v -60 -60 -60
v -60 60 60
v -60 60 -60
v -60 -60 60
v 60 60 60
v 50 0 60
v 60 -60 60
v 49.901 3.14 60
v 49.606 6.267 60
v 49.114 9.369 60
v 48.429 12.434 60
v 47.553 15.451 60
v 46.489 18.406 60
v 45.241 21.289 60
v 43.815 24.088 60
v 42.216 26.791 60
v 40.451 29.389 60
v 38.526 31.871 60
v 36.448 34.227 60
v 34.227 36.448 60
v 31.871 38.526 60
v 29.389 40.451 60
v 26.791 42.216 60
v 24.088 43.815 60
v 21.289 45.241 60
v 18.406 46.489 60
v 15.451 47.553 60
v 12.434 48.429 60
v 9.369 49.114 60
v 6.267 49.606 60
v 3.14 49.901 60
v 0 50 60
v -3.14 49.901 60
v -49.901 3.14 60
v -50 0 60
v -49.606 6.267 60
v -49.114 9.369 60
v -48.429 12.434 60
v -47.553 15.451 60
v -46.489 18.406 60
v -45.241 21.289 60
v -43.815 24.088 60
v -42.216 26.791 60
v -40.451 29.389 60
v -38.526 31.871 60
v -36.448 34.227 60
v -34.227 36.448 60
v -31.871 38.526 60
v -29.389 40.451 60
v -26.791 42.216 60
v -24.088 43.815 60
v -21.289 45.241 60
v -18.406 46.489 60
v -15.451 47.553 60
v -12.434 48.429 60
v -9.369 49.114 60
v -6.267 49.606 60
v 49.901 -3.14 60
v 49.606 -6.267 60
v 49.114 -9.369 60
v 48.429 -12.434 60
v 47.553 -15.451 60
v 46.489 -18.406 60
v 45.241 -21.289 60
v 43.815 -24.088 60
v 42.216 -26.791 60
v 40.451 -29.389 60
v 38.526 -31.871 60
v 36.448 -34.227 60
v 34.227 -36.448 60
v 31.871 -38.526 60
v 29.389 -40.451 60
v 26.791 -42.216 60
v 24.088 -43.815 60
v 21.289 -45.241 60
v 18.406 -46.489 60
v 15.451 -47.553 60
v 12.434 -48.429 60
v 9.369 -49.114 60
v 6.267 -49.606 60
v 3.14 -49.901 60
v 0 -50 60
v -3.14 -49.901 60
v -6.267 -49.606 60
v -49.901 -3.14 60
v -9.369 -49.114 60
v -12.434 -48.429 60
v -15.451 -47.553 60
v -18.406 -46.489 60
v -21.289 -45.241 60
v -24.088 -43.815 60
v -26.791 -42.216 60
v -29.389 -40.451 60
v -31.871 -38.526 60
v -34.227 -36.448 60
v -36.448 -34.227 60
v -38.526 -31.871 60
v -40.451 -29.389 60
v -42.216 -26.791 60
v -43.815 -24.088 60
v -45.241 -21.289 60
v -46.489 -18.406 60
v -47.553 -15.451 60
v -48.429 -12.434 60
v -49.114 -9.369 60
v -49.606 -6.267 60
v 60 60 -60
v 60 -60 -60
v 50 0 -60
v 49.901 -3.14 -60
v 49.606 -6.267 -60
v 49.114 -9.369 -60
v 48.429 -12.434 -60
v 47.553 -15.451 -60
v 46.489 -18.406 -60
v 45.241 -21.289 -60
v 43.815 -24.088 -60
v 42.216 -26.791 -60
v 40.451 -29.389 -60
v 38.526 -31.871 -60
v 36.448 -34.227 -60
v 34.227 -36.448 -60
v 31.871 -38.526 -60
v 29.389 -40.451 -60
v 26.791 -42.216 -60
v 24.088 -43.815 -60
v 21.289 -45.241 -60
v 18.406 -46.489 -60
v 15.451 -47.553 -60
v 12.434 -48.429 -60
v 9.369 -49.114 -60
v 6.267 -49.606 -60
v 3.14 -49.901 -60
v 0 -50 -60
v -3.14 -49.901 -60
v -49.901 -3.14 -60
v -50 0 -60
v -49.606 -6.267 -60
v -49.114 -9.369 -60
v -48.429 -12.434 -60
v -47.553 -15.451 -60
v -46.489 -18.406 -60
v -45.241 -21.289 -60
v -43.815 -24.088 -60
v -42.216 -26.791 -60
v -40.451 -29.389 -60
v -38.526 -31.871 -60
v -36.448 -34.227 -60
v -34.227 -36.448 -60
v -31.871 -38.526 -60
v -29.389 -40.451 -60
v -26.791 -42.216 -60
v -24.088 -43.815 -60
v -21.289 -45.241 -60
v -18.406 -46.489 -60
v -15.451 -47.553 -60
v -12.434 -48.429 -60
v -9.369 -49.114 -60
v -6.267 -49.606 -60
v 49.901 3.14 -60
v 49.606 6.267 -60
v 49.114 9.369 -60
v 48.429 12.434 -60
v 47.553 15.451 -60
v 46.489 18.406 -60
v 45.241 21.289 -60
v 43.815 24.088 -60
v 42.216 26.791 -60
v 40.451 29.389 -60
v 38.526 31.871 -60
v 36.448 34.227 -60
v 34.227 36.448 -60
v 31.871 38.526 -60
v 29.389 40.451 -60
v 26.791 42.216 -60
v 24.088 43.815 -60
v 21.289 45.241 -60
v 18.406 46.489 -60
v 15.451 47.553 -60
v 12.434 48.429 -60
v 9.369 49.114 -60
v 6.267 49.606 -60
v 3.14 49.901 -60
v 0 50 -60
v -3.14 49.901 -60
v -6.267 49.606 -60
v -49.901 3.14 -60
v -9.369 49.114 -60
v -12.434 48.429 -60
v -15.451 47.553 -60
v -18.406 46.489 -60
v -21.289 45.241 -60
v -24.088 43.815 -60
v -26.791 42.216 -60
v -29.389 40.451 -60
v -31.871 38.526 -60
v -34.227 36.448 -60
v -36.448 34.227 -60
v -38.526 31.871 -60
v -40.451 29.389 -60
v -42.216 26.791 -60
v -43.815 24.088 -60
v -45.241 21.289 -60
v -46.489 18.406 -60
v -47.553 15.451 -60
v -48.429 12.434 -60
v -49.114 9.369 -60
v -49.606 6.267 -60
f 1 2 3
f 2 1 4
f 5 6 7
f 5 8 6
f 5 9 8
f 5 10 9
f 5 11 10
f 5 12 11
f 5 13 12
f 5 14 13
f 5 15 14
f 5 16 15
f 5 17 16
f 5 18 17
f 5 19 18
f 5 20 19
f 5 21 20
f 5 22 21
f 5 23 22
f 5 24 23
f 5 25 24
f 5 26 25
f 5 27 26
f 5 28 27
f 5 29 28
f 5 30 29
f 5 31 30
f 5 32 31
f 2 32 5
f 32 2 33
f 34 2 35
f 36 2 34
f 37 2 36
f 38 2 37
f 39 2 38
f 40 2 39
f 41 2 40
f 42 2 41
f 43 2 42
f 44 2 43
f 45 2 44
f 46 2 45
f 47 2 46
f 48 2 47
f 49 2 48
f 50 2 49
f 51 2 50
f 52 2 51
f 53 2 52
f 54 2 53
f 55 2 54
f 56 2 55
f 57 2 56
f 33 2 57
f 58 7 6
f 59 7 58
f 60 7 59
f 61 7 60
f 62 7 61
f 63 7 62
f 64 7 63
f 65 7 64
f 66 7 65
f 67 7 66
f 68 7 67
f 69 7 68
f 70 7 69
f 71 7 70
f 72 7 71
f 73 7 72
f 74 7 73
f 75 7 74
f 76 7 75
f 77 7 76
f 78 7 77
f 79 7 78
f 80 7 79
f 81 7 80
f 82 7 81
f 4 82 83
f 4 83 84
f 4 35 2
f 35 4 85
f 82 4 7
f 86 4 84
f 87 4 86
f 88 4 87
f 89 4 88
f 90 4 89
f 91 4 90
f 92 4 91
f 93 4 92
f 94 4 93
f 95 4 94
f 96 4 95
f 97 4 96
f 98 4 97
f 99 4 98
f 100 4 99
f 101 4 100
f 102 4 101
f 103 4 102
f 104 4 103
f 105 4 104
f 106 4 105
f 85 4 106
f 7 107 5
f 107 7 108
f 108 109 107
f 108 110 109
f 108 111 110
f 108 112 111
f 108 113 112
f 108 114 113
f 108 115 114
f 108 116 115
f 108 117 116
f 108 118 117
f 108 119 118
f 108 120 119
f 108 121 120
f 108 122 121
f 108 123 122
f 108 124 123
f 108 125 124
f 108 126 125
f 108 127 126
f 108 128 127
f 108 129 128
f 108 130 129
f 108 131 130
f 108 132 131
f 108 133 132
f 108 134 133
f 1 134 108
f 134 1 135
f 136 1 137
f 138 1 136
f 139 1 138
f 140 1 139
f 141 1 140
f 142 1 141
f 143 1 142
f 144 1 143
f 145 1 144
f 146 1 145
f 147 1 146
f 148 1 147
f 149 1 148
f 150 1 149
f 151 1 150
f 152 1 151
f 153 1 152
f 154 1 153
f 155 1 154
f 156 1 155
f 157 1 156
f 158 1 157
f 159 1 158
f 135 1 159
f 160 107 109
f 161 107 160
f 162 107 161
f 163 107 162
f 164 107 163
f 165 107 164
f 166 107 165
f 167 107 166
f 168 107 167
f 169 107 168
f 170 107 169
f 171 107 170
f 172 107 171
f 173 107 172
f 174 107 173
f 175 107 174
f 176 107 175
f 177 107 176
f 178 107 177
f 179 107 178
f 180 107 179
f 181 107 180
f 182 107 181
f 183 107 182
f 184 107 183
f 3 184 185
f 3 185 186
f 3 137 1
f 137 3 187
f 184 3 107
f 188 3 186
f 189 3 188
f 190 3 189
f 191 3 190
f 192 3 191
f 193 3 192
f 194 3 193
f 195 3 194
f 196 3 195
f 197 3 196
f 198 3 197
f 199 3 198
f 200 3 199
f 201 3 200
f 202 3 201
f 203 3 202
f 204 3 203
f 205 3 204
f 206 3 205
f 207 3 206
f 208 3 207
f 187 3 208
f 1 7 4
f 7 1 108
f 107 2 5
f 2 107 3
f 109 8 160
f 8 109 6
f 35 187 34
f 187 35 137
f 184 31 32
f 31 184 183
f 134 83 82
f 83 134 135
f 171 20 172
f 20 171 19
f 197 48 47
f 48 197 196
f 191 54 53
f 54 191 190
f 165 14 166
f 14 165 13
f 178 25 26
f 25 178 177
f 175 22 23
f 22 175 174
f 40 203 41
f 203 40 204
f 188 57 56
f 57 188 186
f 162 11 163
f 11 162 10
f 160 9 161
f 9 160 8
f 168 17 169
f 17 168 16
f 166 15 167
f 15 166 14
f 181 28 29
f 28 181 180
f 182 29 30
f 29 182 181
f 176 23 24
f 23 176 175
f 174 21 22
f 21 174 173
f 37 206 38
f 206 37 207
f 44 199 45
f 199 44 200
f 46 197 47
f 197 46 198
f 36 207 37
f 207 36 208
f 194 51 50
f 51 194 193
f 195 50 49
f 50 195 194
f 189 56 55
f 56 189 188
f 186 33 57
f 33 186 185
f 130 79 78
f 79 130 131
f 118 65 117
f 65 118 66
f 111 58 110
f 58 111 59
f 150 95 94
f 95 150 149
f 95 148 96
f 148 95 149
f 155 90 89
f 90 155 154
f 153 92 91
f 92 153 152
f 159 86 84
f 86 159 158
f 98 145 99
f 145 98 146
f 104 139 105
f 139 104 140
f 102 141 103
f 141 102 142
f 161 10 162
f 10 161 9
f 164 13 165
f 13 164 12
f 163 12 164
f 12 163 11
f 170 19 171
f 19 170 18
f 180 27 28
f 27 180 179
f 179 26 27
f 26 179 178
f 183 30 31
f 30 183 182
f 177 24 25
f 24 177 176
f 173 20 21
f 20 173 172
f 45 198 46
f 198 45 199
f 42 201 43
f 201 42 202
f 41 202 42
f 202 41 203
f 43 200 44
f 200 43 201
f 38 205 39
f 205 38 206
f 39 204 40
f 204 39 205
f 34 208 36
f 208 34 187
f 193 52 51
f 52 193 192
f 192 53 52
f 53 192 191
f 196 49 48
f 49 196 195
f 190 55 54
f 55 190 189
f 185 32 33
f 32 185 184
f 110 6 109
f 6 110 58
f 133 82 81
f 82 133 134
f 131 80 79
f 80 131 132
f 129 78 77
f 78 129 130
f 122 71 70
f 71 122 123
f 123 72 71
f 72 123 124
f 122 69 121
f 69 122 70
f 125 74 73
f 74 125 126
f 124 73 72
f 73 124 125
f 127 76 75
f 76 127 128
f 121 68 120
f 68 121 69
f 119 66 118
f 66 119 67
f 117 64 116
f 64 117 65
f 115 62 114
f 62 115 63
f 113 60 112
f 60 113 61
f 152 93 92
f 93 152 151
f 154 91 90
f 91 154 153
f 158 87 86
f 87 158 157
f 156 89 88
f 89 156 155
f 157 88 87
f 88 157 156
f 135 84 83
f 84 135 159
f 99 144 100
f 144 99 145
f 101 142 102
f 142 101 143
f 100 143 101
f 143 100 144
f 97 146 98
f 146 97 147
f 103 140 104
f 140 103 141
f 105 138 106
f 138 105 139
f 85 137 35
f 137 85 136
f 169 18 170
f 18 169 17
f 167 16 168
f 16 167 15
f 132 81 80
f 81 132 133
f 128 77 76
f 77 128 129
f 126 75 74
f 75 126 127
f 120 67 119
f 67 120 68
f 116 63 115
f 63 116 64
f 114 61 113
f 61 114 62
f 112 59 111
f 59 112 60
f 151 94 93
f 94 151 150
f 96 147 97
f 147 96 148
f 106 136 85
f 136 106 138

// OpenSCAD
$fn = 100;
difference() {
    cube([120, 120, 120], center = true);
    cylinder(h = 500, r1 = 50, r2 = 50, center = true);
}
